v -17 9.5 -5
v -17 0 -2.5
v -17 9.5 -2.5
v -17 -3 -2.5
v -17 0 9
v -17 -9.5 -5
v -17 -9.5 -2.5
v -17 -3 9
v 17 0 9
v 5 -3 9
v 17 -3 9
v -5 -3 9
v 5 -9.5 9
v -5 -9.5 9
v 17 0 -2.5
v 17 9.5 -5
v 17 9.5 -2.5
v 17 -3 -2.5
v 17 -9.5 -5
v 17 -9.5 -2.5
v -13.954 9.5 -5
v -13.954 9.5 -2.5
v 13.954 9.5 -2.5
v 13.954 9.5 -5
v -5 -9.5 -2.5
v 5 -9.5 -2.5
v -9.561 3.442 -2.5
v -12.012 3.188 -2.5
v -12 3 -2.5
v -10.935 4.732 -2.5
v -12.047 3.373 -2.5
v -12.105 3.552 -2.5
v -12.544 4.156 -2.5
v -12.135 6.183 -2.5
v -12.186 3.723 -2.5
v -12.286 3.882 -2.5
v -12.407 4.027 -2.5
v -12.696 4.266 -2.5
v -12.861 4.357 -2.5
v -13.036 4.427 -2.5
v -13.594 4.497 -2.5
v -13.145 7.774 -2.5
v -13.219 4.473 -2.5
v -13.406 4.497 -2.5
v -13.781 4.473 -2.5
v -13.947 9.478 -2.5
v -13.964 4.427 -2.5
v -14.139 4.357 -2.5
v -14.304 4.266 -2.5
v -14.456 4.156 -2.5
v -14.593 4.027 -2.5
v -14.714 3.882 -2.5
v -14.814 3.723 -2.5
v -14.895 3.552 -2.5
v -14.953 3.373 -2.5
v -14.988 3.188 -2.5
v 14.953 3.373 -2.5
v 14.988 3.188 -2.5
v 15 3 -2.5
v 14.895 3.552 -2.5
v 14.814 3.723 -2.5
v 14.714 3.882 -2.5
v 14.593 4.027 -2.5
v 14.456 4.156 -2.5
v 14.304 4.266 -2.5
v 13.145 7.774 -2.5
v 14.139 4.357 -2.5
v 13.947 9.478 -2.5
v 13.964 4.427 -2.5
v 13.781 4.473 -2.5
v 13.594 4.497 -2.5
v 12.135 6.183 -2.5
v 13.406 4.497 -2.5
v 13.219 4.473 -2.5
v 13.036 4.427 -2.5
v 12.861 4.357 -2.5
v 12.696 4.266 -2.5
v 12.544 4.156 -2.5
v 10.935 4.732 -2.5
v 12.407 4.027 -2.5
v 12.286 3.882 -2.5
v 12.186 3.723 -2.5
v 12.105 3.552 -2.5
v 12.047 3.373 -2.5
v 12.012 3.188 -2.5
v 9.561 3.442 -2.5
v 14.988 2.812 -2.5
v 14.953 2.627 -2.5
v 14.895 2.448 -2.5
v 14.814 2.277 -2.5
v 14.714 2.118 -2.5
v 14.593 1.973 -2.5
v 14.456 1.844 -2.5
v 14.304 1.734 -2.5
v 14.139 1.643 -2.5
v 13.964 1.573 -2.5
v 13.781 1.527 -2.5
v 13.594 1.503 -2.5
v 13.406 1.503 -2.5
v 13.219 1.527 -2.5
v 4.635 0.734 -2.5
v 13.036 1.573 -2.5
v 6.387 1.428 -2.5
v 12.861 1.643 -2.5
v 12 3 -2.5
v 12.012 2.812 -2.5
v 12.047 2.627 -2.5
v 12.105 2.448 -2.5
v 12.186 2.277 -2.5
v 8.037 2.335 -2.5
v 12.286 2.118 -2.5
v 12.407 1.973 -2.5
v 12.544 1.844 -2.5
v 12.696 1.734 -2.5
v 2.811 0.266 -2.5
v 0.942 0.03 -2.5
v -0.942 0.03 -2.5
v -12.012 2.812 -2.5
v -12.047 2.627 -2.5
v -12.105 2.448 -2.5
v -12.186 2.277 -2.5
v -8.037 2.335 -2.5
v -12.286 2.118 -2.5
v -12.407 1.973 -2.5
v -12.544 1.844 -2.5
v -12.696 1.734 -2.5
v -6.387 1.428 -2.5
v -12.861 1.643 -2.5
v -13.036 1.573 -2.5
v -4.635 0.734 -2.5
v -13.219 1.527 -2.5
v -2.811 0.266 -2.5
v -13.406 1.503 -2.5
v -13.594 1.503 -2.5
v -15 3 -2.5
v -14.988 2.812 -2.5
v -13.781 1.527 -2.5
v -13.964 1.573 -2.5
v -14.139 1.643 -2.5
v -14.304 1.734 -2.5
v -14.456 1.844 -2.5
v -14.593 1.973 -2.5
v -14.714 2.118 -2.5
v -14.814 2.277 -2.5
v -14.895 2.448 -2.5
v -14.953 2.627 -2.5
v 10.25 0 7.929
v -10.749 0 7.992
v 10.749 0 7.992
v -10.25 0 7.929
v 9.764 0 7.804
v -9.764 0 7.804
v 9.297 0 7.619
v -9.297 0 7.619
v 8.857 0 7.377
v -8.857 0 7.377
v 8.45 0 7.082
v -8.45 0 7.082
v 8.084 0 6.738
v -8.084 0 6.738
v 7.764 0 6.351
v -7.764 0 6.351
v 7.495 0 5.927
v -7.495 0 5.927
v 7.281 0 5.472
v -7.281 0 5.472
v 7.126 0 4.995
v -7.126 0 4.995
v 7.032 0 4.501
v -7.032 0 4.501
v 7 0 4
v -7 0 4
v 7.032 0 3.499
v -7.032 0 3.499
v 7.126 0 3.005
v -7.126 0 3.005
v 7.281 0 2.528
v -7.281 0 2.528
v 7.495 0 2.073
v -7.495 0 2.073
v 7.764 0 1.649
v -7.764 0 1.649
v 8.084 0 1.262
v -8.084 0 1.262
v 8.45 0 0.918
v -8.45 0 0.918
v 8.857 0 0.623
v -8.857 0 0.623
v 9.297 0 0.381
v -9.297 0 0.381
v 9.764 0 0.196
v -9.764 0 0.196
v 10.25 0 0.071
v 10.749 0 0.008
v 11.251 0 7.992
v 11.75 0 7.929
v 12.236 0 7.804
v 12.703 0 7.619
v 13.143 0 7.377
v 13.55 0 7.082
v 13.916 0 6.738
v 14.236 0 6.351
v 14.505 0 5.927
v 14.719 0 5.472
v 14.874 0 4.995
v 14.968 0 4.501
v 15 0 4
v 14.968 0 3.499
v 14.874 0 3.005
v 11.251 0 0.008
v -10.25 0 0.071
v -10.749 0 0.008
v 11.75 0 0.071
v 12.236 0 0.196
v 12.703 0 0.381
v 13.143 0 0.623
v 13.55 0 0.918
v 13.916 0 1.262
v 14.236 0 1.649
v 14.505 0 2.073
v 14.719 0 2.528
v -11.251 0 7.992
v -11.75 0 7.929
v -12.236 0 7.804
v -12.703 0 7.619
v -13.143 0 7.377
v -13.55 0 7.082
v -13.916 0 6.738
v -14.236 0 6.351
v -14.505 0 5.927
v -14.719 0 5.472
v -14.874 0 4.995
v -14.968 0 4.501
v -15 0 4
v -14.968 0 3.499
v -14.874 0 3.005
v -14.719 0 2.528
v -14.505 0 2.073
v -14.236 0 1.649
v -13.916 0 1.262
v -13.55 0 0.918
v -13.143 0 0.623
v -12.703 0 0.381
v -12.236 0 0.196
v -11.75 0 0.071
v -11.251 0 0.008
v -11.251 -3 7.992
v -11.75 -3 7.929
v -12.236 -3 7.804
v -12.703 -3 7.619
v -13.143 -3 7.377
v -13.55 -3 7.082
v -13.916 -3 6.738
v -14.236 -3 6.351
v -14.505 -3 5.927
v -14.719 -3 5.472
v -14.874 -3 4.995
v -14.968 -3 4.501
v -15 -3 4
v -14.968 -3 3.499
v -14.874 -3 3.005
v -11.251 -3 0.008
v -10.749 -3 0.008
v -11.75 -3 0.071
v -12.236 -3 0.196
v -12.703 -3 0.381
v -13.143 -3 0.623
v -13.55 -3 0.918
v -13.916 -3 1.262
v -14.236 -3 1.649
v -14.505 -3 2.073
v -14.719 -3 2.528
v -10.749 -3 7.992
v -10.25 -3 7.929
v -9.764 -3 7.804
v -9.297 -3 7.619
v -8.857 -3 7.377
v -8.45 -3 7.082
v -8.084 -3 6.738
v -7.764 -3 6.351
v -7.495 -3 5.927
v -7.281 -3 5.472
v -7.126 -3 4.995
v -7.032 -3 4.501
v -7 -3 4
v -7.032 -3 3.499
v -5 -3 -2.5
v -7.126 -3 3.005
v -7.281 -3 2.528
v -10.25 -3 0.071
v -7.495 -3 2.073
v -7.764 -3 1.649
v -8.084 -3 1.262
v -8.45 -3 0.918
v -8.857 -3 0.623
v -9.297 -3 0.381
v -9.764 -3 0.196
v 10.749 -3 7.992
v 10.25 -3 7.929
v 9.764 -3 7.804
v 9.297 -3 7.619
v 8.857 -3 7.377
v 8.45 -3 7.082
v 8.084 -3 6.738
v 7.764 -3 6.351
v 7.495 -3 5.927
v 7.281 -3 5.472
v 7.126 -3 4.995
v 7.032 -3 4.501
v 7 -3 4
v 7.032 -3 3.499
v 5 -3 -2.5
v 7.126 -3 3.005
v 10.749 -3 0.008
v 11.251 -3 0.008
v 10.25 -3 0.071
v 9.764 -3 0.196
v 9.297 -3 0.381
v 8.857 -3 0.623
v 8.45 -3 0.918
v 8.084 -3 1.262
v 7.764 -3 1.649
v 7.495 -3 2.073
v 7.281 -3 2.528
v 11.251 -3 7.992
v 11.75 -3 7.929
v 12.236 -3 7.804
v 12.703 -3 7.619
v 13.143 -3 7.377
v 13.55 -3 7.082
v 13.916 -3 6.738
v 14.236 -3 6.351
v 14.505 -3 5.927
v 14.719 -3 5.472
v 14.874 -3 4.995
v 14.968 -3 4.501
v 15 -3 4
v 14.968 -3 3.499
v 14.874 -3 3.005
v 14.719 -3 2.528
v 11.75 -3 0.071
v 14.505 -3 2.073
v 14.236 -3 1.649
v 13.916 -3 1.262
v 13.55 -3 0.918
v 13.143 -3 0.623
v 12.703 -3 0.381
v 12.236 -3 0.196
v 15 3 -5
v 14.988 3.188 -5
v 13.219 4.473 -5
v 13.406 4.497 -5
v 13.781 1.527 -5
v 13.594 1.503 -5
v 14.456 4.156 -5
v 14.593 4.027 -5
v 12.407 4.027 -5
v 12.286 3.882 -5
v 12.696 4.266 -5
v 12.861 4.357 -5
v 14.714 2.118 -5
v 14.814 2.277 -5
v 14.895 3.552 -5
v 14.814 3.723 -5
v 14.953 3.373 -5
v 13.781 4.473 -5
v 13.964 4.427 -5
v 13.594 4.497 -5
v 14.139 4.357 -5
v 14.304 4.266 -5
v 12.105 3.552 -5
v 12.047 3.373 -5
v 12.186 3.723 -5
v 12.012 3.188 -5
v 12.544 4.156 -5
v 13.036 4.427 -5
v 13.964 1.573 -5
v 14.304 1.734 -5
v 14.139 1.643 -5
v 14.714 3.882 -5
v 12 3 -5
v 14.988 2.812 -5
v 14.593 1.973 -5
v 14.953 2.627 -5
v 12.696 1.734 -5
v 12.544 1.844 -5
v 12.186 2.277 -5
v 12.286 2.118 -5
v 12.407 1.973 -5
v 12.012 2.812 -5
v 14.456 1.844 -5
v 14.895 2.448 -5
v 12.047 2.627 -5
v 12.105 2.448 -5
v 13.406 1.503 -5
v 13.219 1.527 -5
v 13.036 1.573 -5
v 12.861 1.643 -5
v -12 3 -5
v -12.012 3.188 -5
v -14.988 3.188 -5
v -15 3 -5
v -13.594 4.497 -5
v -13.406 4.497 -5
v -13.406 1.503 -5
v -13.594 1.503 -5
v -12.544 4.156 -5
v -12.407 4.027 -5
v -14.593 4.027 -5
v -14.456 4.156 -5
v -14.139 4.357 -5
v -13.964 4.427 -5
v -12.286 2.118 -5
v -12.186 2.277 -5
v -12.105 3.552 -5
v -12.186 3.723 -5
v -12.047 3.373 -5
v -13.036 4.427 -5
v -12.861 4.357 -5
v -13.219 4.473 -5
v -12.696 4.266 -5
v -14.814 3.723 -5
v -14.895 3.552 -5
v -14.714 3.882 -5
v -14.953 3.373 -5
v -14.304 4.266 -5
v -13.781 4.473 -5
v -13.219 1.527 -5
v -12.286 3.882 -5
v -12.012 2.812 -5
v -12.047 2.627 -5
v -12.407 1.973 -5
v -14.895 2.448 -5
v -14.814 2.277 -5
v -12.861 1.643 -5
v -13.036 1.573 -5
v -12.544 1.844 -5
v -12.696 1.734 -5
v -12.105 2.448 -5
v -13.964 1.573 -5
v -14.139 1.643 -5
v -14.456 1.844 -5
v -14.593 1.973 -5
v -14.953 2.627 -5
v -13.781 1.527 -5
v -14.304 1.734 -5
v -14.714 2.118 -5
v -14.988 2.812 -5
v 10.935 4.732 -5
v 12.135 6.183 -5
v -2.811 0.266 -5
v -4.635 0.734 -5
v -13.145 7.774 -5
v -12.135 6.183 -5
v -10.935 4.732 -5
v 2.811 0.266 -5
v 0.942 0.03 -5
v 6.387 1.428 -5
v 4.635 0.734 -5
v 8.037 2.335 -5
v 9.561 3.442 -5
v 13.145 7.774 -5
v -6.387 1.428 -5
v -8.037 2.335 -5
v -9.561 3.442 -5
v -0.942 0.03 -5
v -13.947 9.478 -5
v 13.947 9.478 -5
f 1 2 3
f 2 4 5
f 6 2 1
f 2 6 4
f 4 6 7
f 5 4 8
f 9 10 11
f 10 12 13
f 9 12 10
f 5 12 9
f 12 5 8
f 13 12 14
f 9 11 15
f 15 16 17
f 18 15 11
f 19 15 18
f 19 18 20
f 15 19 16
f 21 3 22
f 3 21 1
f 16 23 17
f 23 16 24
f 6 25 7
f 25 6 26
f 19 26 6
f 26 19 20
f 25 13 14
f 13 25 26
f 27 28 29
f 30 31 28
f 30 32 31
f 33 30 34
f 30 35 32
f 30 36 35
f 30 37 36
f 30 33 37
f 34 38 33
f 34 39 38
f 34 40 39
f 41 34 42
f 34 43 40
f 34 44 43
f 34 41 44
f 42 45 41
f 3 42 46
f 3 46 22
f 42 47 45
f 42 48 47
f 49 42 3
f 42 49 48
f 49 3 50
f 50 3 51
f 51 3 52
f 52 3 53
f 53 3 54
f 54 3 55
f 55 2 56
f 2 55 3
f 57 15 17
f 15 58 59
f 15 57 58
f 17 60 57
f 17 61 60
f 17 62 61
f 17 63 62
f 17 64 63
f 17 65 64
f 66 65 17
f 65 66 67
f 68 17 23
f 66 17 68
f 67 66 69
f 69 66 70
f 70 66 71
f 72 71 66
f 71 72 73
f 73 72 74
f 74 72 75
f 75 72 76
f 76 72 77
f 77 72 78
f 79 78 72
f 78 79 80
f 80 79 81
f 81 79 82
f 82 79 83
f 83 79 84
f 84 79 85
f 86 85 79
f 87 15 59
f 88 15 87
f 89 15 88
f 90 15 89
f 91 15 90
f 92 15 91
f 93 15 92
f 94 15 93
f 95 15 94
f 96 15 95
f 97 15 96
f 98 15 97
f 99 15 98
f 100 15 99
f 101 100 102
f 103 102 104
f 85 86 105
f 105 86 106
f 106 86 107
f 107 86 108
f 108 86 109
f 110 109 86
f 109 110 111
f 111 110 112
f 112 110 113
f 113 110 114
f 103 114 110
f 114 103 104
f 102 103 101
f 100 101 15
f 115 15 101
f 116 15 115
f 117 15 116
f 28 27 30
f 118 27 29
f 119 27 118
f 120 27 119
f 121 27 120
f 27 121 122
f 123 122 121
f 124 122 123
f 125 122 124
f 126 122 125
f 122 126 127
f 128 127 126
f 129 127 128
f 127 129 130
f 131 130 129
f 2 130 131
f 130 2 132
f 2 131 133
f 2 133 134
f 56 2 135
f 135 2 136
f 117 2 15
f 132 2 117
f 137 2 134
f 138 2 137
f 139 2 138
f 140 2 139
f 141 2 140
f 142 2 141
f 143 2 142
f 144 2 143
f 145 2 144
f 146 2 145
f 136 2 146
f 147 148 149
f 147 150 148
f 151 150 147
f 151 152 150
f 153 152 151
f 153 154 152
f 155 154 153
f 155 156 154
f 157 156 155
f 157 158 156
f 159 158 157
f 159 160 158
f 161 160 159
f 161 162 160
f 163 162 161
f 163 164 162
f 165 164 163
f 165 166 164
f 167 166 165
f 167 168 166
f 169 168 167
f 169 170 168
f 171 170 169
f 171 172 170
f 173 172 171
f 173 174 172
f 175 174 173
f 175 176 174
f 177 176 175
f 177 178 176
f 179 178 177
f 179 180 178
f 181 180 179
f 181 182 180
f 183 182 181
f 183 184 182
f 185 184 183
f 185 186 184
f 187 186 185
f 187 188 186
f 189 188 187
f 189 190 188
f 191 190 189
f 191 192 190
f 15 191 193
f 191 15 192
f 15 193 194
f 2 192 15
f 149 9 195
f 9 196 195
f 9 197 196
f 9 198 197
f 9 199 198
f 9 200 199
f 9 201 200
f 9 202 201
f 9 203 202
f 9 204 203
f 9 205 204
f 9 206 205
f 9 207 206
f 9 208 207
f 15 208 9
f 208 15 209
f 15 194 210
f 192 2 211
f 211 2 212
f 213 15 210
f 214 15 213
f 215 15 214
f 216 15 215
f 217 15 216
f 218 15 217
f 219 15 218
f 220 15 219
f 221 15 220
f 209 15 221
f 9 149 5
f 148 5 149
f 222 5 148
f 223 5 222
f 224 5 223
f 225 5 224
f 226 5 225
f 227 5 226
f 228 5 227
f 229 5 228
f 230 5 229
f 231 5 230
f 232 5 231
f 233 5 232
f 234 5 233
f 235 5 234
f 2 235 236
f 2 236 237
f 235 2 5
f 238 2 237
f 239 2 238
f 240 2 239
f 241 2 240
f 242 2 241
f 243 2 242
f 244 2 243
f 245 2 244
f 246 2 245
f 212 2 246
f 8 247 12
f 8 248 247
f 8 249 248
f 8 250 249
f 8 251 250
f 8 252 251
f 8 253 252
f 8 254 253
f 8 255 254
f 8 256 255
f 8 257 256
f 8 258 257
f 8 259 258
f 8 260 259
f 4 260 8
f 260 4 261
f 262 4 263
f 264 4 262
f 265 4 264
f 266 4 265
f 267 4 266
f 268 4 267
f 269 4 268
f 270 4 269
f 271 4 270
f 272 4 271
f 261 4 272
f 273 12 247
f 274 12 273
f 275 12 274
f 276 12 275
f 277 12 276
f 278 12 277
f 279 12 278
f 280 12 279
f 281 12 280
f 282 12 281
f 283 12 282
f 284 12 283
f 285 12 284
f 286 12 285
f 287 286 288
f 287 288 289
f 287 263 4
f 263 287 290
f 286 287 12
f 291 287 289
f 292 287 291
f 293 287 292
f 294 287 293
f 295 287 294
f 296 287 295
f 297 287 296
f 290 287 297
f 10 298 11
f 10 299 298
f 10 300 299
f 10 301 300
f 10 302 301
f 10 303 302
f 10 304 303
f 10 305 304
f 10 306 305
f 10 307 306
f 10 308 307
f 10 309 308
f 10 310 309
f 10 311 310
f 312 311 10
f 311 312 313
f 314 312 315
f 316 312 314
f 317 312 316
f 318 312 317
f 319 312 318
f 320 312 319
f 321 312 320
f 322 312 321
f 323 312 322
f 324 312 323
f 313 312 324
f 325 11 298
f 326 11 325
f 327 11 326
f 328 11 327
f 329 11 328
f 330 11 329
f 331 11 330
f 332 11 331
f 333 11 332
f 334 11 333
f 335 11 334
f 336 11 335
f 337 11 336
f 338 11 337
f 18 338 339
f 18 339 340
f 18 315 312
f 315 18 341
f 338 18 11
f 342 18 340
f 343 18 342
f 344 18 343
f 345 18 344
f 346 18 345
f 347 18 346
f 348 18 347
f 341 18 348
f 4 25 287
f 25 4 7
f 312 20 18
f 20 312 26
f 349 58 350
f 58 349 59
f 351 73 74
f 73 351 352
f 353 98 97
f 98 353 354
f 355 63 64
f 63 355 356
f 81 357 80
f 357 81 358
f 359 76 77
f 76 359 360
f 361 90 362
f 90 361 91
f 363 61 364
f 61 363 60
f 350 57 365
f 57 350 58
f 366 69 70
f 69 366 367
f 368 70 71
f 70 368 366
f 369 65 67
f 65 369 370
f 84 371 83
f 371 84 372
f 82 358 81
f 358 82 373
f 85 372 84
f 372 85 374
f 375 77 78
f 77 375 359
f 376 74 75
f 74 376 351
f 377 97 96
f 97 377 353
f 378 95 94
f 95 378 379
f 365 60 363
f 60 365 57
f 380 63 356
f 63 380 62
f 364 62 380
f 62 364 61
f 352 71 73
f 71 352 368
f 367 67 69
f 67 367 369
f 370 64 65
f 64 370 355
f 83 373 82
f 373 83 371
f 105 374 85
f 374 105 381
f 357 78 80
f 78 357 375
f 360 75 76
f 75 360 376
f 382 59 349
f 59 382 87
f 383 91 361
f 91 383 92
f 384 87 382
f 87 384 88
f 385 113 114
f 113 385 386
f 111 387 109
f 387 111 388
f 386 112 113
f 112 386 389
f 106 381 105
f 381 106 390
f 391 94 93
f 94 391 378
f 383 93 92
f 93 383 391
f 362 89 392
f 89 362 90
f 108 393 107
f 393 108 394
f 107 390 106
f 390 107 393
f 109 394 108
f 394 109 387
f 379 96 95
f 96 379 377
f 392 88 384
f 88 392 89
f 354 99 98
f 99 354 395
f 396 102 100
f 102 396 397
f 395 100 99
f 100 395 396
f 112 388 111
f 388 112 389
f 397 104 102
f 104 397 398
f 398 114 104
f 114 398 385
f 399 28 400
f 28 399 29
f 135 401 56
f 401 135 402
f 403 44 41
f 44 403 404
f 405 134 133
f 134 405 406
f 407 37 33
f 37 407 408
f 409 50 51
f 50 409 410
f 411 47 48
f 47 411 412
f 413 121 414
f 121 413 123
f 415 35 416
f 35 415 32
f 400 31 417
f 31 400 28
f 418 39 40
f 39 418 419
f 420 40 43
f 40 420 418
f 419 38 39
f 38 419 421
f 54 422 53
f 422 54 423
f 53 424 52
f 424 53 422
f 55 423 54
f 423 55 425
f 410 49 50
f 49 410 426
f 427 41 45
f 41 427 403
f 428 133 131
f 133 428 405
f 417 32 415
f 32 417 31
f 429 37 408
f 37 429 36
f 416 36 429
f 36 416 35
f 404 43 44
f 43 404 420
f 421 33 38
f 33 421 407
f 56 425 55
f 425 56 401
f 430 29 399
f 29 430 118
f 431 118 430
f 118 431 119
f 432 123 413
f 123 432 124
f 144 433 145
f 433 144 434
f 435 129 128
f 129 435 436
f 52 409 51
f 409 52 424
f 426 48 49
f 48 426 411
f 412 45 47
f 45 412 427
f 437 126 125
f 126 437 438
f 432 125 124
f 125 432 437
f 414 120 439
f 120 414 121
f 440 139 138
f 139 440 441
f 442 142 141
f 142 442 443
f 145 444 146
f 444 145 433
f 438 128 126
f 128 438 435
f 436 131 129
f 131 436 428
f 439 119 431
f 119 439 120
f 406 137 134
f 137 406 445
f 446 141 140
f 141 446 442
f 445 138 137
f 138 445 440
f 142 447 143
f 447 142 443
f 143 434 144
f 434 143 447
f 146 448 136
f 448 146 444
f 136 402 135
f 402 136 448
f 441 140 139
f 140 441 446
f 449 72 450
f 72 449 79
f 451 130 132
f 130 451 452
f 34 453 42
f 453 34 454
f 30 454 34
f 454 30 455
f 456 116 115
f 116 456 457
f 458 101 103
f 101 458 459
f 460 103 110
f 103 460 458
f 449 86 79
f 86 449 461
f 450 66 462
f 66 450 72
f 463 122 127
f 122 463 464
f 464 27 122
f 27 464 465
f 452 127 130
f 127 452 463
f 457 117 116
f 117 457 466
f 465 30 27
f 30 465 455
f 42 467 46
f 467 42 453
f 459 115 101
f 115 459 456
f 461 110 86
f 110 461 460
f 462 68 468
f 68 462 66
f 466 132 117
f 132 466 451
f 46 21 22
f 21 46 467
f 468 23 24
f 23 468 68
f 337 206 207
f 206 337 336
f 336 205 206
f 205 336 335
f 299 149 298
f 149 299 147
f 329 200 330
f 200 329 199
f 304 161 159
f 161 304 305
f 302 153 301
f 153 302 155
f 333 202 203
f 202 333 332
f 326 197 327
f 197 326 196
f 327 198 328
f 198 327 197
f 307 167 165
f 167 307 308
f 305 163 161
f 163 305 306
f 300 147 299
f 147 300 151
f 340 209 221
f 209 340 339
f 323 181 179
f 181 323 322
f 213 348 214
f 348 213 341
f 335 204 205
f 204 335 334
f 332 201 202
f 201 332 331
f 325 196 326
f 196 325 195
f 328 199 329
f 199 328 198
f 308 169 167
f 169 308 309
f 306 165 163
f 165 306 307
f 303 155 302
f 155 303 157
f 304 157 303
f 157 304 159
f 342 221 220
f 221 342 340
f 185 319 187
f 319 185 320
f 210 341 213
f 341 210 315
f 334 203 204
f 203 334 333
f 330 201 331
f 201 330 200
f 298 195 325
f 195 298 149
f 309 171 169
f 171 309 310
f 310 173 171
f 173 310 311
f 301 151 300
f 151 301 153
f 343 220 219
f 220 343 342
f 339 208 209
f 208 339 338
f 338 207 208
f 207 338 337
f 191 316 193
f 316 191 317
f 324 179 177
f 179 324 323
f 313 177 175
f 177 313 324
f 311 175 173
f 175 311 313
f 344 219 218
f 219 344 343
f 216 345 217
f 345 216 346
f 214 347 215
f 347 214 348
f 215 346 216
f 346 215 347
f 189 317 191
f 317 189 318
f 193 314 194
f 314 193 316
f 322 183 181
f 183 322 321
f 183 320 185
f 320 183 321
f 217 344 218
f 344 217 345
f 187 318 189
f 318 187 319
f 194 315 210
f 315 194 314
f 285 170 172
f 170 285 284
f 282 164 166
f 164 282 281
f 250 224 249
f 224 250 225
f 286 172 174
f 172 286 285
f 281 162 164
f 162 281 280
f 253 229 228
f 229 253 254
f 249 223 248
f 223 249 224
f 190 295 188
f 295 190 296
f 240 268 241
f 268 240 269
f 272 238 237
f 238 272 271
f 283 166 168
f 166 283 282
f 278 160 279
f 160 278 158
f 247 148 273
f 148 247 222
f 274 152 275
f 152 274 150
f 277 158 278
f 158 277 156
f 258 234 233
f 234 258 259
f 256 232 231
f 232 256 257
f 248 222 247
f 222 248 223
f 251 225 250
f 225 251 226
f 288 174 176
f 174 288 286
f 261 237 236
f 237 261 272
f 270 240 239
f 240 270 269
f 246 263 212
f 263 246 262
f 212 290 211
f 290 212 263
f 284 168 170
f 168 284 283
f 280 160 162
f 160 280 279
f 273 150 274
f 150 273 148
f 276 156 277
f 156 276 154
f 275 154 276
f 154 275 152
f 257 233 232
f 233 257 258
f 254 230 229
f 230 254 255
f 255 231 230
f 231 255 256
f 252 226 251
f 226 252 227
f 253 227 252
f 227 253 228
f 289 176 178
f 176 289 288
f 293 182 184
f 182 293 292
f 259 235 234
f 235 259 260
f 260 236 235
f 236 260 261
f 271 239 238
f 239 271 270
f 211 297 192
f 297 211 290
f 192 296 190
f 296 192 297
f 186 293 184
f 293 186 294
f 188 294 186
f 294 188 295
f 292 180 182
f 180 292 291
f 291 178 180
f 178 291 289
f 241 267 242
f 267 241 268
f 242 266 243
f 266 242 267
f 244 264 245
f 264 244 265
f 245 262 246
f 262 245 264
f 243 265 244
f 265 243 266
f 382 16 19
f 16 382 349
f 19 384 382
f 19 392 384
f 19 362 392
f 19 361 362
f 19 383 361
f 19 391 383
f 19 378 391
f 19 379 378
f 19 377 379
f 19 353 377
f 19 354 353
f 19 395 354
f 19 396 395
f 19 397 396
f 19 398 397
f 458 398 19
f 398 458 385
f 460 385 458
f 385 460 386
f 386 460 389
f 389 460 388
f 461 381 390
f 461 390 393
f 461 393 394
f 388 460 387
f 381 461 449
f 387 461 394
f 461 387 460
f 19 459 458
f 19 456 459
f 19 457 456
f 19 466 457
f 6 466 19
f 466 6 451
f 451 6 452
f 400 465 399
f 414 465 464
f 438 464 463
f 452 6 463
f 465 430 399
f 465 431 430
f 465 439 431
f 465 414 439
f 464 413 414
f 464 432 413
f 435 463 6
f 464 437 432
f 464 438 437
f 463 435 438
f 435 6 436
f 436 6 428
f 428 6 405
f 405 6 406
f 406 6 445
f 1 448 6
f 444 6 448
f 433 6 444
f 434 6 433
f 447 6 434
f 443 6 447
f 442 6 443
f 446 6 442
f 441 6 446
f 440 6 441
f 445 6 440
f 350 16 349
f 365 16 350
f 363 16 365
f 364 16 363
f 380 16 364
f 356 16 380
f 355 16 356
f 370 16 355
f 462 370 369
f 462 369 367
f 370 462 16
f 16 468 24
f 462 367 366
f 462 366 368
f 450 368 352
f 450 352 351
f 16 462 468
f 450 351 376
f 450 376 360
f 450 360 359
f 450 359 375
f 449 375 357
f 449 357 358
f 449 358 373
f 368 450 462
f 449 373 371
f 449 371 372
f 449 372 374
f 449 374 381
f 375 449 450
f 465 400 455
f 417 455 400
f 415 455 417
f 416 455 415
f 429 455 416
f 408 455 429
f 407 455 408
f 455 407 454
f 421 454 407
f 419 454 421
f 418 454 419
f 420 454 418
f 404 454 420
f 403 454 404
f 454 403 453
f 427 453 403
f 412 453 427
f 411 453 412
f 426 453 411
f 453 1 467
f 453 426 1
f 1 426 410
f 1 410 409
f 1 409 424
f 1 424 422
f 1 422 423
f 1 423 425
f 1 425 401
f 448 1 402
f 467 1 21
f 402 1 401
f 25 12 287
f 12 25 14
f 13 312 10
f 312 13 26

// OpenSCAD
$fn=50;
difference(){
cube([34, 19, 18],center=true);
translate([0, 10, 5])
cube([35, 20, 15],center=true);
translate([0, -13, 5])
cube([35, 20, 15],center=true);
rotate([0, 0, 0])
translate([13.5, 3, 0])
cylinder(h=22,r=1.5,center=true);
translate([-13.5, 3, 0])
cylinder(h=22,r=1.5,center=true);
translate([0, 15, 0])
cylinder(h=22,r=15,center=true);
rotate([90, 0, 0])
translate([11, 4, 5])
cylinder(h=15,r=4,center=true);
rotate([90, 0, 0])
translate([-11, 4, 5])
cylinder(h=15,r=4,center=true);
translate([0, 0, -12])
cube([36, 23, 14],center=true);
}

translate([0, -6, 3])
cube([10, 7, 12],center=true);
